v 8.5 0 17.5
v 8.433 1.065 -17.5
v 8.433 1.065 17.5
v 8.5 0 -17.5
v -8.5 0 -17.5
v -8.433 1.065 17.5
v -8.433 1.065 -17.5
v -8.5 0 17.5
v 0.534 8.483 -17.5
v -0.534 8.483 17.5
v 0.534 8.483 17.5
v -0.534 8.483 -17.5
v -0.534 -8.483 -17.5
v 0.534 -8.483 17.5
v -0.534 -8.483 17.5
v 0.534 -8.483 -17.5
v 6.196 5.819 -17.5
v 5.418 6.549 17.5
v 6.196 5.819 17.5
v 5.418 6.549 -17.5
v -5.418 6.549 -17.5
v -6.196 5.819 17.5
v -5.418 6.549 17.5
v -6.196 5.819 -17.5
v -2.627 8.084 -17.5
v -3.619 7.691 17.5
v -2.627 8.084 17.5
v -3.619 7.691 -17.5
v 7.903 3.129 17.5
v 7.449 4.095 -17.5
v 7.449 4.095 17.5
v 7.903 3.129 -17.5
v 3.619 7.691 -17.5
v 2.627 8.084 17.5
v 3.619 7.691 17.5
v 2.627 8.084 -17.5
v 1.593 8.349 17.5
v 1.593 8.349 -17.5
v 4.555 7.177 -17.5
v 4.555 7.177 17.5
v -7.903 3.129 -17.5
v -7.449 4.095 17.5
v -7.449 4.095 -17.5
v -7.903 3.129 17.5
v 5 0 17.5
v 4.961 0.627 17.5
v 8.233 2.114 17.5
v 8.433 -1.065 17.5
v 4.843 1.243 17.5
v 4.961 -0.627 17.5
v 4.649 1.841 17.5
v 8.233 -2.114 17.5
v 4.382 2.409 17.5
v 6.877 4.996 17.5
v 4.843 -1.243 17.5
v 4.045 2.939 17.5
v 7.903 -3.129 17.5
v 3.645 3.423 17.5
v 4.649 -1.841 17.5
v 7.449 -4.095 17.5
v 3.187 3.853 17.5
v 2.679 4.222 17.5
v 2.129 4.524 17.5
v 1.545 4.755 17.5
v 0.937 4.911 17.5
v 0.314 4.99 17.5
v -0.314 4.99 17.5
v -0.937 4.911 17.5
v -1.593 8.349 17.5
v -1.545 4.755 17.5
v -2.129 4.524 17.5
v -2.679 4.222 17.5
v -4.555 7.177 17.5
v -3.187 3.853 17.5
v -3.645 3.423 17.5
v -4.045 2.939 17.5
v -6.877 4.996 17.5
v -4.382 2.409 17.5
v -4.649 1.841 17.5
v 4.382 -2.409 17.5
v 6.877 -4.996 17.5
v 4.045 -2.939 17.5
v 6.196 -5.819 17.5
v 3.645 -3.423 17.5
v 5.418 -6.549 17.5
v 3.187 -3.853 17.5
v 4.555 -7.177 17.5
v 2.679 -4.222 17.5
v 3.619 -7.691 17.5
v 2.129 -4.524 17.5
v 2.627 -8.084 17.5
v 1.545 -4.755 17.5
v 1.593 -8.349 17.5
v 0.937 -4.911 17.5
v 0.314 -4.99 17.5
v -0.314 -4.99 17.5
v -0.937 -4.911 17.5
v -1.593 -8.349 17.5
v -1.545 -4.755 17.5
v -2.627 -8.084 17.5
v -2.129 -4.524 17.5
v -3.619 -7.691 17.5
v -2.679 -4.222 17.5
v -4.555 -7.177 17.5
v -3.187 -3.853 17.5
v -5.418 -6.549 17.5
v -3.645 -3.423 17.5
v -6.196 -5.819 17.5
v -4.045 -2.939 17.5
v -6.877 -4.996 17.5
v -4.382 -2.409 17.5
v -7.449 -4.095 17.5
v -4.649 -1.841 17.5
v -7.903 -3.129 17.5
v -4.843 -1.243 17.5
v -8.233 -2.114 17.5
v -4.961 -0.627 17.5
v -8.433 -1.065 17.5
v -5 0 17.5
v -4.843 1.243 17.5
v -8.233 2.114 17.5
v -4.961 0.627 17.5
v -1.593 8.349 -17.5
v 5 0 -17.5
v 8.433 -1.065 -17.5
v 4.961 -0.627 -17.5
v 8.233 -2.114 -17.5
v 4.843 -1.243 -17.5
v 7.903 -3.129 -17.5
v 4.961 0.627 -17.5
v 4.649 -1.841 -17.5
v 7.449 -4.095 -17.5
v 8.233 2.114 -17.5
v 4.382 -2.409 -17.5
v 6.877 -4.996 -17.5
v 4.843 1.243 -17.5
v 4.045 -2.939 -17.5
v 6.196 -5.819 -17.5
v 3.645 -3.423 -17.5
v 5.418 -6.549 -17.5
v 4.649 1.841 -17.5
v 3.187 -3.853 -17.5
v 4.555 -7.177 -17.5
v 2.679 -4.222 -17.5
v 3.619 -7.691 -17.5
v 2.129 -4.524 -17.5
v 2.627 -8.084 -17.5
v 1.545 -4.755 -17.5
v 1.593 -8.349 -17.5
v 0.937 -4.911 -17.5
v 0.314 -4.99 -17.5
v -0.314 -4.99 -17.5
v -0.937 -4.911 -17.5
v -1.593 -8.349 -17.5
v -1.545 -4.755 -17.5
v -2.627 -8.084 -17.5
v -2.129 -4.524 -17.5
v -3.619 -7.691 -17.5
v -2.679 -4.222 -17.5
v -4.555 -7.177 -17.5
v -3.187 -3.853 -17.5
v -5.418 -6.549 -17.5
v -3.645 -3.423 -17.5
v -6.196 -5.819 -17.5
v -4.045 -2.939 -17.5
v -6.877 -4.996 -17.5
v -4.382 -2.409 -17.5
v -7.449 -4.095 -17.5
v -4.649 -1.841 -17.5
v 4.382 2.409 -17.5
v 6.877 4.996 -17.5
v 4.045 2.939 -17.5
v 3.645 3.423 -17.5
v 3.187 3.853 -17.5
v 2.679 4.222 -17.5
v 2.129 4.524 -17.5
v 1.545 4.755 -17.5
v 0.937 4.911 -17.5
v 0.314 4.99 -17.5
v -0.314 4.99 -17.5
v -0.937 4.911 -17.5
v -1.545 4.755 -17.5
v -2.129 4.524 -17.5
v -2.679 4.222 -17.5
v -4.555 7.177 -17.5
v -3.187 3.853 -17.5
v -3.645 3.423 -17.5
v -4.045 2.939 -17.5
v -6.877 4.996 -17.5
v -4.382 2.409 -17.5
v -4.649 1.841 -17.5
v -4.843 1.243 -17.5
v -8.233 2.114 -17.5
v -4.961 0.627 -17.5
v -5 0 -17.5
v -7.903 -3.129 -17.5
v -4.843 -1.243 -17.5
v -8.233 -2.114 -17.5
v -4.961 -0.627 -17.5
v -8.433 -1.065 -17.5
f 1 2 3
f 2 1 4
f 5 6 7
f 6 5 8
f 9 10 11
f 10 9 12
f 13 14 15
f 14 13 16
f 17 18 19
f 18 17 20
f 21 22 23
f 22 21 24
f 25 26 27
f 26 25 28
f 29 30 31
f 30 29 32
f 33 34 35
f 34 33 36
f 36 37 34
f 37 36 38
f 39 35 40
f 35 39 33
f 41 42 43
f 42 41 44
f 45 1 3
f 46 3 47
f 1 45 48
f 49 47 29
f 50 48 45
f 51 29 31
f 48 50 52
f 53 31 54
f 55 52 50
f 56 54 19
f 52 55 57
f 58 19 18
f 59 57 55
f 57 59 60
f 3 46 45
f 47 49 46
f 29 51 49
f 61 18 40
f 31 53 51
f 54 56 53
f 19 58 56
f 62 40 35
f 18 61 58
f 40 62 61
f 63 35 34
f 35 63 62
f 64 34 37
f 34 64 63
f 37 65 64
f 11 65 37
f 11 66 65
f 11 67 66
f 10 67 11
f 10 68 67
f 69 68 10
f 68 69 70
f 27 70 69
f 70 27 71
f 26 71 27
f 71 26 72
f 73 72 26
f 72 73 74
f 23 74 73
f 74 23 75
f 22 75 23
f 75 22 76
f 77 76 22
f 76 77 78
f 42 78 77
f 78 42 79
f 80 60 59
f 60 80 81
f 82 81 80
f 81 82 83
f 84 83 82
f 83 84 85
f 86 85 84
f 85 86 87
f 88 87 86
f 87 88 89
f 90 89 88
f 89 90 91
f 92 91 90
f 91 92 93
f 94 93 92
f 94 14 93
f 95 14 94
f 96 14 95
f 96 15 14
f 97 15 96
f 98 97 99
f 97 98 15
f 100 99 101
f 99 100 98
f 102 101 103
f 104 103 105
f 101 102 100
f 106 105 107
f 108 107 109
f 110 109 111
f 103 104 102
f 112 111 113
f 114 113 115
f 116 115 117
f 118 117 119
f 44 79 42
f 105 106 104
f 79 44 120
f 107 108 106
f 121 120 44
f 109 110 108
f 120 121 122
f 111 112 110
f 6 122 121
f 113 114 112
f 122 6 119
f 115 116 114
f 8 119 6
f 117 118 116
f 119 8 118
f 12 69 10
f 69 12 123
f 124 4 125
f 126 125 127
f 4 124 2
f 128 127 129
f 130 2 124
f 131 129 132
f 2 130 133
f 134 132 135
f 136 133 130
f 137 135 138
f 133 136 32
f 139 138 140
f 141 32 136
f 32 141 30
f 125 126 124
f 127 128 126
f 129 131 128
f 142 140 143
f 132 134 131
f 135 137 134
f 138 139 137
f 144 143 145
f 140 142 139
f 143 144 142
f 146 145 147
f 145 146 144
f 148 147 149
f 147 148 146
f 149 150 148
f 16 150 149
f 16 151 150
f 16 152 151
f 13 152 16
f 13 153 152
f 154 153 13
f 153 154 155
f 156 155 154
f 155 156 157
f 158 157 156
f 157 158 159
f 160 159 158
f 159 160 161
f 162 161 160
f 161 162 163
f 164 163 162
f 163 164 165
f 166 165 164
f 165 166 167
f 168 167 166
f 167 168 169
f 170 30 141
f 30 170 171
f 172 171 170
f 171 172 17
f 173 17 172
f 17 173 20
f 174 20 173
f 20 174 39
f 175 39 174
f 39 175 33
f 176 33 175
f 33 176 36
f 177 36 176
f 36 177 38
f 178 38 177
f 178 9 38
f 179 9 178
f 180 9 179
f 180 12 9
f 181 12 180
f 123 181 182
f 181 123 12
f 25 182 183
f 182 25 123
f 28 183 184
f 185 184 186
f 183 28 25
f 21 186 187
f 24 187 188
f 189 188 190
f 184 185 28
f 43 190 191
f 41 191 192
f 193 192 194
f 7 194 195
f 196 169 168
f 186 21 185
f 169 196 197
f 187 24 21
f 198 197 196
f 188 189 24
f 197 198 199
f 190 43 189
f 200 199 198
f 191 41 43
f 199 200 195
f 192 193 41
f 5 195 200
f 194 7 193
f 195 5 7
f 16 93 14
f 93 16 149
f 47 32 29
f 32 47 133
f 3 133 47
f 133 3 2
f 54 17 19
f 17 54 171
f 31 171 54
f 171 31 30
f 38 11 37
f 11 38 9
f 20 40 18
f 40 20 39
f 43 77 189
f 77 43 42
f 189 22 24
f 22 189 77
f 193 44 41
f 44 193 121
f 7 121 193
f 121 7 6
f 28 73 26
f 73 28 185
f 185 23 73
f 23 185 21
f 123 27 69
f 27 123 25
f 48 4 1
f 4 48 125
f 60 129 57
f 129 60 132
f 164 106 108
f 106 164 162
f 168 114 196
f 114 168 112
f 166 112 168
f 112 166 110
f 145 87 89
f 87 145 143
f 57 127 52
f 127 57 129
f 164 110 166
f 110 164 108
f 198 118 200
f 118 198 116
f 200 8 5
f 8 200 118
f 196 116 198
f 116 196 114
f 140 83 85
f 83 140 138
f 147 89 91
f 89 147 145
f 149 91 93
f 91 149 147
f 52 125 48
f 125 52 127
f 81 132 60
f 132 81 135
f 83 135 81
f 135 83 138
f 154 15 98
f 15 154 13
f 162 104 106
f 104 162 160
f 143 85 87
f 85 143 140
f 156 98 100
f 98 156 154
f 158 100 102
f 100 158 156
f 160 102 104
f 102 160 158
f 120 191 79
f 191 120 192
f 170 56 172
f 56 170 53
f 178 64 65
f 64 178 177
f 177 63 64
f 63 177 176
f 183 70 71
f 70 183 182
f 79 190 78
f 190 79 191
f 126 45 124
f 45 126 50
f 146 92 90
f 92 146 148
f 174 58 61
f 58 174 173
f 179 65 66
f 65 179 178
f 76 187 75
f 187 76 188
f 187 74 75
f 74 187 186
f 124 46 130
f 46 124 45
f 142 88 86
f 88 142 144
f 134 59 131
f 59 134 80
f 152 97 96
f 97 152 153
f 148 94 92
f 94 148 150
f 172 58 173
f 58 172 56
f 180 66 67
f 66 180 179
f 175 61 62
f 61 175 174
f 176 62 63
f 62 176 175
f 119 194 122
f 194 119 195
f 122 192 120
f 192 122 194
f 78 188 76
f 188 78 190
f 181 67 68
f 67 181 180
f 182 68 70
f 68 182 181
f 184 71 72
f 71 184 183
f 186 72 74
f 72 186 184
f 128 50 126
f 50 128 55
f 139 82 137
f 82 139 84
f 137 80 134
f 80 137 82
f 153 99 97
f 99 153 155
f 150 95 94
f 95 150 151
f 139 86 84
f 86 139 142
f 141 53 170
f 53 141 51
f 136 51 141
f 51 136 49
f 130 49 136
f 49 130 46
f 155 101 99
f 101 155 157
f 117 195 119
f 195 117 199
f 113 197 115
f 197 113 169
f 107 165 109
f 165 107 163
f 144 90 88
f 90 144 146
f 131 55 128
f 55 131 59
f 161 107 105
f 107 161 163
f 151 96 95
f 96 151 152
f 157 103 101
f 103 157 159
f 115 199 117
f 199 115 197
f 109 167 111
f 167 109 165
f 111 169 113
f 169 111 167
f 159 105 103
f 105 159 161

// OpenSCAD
$fn = 50;


difference() {
	union() {
		translate(v = [0, 0, -17.5000000000]) {
			cylinder(h = 35, r = 8.5000000000);
		}
	}
	union() {
		translate(v = [0, 0, -100.0000000000]) {
			cylinder(h = 200, r = 5.0000000000);
		}
	}
}
